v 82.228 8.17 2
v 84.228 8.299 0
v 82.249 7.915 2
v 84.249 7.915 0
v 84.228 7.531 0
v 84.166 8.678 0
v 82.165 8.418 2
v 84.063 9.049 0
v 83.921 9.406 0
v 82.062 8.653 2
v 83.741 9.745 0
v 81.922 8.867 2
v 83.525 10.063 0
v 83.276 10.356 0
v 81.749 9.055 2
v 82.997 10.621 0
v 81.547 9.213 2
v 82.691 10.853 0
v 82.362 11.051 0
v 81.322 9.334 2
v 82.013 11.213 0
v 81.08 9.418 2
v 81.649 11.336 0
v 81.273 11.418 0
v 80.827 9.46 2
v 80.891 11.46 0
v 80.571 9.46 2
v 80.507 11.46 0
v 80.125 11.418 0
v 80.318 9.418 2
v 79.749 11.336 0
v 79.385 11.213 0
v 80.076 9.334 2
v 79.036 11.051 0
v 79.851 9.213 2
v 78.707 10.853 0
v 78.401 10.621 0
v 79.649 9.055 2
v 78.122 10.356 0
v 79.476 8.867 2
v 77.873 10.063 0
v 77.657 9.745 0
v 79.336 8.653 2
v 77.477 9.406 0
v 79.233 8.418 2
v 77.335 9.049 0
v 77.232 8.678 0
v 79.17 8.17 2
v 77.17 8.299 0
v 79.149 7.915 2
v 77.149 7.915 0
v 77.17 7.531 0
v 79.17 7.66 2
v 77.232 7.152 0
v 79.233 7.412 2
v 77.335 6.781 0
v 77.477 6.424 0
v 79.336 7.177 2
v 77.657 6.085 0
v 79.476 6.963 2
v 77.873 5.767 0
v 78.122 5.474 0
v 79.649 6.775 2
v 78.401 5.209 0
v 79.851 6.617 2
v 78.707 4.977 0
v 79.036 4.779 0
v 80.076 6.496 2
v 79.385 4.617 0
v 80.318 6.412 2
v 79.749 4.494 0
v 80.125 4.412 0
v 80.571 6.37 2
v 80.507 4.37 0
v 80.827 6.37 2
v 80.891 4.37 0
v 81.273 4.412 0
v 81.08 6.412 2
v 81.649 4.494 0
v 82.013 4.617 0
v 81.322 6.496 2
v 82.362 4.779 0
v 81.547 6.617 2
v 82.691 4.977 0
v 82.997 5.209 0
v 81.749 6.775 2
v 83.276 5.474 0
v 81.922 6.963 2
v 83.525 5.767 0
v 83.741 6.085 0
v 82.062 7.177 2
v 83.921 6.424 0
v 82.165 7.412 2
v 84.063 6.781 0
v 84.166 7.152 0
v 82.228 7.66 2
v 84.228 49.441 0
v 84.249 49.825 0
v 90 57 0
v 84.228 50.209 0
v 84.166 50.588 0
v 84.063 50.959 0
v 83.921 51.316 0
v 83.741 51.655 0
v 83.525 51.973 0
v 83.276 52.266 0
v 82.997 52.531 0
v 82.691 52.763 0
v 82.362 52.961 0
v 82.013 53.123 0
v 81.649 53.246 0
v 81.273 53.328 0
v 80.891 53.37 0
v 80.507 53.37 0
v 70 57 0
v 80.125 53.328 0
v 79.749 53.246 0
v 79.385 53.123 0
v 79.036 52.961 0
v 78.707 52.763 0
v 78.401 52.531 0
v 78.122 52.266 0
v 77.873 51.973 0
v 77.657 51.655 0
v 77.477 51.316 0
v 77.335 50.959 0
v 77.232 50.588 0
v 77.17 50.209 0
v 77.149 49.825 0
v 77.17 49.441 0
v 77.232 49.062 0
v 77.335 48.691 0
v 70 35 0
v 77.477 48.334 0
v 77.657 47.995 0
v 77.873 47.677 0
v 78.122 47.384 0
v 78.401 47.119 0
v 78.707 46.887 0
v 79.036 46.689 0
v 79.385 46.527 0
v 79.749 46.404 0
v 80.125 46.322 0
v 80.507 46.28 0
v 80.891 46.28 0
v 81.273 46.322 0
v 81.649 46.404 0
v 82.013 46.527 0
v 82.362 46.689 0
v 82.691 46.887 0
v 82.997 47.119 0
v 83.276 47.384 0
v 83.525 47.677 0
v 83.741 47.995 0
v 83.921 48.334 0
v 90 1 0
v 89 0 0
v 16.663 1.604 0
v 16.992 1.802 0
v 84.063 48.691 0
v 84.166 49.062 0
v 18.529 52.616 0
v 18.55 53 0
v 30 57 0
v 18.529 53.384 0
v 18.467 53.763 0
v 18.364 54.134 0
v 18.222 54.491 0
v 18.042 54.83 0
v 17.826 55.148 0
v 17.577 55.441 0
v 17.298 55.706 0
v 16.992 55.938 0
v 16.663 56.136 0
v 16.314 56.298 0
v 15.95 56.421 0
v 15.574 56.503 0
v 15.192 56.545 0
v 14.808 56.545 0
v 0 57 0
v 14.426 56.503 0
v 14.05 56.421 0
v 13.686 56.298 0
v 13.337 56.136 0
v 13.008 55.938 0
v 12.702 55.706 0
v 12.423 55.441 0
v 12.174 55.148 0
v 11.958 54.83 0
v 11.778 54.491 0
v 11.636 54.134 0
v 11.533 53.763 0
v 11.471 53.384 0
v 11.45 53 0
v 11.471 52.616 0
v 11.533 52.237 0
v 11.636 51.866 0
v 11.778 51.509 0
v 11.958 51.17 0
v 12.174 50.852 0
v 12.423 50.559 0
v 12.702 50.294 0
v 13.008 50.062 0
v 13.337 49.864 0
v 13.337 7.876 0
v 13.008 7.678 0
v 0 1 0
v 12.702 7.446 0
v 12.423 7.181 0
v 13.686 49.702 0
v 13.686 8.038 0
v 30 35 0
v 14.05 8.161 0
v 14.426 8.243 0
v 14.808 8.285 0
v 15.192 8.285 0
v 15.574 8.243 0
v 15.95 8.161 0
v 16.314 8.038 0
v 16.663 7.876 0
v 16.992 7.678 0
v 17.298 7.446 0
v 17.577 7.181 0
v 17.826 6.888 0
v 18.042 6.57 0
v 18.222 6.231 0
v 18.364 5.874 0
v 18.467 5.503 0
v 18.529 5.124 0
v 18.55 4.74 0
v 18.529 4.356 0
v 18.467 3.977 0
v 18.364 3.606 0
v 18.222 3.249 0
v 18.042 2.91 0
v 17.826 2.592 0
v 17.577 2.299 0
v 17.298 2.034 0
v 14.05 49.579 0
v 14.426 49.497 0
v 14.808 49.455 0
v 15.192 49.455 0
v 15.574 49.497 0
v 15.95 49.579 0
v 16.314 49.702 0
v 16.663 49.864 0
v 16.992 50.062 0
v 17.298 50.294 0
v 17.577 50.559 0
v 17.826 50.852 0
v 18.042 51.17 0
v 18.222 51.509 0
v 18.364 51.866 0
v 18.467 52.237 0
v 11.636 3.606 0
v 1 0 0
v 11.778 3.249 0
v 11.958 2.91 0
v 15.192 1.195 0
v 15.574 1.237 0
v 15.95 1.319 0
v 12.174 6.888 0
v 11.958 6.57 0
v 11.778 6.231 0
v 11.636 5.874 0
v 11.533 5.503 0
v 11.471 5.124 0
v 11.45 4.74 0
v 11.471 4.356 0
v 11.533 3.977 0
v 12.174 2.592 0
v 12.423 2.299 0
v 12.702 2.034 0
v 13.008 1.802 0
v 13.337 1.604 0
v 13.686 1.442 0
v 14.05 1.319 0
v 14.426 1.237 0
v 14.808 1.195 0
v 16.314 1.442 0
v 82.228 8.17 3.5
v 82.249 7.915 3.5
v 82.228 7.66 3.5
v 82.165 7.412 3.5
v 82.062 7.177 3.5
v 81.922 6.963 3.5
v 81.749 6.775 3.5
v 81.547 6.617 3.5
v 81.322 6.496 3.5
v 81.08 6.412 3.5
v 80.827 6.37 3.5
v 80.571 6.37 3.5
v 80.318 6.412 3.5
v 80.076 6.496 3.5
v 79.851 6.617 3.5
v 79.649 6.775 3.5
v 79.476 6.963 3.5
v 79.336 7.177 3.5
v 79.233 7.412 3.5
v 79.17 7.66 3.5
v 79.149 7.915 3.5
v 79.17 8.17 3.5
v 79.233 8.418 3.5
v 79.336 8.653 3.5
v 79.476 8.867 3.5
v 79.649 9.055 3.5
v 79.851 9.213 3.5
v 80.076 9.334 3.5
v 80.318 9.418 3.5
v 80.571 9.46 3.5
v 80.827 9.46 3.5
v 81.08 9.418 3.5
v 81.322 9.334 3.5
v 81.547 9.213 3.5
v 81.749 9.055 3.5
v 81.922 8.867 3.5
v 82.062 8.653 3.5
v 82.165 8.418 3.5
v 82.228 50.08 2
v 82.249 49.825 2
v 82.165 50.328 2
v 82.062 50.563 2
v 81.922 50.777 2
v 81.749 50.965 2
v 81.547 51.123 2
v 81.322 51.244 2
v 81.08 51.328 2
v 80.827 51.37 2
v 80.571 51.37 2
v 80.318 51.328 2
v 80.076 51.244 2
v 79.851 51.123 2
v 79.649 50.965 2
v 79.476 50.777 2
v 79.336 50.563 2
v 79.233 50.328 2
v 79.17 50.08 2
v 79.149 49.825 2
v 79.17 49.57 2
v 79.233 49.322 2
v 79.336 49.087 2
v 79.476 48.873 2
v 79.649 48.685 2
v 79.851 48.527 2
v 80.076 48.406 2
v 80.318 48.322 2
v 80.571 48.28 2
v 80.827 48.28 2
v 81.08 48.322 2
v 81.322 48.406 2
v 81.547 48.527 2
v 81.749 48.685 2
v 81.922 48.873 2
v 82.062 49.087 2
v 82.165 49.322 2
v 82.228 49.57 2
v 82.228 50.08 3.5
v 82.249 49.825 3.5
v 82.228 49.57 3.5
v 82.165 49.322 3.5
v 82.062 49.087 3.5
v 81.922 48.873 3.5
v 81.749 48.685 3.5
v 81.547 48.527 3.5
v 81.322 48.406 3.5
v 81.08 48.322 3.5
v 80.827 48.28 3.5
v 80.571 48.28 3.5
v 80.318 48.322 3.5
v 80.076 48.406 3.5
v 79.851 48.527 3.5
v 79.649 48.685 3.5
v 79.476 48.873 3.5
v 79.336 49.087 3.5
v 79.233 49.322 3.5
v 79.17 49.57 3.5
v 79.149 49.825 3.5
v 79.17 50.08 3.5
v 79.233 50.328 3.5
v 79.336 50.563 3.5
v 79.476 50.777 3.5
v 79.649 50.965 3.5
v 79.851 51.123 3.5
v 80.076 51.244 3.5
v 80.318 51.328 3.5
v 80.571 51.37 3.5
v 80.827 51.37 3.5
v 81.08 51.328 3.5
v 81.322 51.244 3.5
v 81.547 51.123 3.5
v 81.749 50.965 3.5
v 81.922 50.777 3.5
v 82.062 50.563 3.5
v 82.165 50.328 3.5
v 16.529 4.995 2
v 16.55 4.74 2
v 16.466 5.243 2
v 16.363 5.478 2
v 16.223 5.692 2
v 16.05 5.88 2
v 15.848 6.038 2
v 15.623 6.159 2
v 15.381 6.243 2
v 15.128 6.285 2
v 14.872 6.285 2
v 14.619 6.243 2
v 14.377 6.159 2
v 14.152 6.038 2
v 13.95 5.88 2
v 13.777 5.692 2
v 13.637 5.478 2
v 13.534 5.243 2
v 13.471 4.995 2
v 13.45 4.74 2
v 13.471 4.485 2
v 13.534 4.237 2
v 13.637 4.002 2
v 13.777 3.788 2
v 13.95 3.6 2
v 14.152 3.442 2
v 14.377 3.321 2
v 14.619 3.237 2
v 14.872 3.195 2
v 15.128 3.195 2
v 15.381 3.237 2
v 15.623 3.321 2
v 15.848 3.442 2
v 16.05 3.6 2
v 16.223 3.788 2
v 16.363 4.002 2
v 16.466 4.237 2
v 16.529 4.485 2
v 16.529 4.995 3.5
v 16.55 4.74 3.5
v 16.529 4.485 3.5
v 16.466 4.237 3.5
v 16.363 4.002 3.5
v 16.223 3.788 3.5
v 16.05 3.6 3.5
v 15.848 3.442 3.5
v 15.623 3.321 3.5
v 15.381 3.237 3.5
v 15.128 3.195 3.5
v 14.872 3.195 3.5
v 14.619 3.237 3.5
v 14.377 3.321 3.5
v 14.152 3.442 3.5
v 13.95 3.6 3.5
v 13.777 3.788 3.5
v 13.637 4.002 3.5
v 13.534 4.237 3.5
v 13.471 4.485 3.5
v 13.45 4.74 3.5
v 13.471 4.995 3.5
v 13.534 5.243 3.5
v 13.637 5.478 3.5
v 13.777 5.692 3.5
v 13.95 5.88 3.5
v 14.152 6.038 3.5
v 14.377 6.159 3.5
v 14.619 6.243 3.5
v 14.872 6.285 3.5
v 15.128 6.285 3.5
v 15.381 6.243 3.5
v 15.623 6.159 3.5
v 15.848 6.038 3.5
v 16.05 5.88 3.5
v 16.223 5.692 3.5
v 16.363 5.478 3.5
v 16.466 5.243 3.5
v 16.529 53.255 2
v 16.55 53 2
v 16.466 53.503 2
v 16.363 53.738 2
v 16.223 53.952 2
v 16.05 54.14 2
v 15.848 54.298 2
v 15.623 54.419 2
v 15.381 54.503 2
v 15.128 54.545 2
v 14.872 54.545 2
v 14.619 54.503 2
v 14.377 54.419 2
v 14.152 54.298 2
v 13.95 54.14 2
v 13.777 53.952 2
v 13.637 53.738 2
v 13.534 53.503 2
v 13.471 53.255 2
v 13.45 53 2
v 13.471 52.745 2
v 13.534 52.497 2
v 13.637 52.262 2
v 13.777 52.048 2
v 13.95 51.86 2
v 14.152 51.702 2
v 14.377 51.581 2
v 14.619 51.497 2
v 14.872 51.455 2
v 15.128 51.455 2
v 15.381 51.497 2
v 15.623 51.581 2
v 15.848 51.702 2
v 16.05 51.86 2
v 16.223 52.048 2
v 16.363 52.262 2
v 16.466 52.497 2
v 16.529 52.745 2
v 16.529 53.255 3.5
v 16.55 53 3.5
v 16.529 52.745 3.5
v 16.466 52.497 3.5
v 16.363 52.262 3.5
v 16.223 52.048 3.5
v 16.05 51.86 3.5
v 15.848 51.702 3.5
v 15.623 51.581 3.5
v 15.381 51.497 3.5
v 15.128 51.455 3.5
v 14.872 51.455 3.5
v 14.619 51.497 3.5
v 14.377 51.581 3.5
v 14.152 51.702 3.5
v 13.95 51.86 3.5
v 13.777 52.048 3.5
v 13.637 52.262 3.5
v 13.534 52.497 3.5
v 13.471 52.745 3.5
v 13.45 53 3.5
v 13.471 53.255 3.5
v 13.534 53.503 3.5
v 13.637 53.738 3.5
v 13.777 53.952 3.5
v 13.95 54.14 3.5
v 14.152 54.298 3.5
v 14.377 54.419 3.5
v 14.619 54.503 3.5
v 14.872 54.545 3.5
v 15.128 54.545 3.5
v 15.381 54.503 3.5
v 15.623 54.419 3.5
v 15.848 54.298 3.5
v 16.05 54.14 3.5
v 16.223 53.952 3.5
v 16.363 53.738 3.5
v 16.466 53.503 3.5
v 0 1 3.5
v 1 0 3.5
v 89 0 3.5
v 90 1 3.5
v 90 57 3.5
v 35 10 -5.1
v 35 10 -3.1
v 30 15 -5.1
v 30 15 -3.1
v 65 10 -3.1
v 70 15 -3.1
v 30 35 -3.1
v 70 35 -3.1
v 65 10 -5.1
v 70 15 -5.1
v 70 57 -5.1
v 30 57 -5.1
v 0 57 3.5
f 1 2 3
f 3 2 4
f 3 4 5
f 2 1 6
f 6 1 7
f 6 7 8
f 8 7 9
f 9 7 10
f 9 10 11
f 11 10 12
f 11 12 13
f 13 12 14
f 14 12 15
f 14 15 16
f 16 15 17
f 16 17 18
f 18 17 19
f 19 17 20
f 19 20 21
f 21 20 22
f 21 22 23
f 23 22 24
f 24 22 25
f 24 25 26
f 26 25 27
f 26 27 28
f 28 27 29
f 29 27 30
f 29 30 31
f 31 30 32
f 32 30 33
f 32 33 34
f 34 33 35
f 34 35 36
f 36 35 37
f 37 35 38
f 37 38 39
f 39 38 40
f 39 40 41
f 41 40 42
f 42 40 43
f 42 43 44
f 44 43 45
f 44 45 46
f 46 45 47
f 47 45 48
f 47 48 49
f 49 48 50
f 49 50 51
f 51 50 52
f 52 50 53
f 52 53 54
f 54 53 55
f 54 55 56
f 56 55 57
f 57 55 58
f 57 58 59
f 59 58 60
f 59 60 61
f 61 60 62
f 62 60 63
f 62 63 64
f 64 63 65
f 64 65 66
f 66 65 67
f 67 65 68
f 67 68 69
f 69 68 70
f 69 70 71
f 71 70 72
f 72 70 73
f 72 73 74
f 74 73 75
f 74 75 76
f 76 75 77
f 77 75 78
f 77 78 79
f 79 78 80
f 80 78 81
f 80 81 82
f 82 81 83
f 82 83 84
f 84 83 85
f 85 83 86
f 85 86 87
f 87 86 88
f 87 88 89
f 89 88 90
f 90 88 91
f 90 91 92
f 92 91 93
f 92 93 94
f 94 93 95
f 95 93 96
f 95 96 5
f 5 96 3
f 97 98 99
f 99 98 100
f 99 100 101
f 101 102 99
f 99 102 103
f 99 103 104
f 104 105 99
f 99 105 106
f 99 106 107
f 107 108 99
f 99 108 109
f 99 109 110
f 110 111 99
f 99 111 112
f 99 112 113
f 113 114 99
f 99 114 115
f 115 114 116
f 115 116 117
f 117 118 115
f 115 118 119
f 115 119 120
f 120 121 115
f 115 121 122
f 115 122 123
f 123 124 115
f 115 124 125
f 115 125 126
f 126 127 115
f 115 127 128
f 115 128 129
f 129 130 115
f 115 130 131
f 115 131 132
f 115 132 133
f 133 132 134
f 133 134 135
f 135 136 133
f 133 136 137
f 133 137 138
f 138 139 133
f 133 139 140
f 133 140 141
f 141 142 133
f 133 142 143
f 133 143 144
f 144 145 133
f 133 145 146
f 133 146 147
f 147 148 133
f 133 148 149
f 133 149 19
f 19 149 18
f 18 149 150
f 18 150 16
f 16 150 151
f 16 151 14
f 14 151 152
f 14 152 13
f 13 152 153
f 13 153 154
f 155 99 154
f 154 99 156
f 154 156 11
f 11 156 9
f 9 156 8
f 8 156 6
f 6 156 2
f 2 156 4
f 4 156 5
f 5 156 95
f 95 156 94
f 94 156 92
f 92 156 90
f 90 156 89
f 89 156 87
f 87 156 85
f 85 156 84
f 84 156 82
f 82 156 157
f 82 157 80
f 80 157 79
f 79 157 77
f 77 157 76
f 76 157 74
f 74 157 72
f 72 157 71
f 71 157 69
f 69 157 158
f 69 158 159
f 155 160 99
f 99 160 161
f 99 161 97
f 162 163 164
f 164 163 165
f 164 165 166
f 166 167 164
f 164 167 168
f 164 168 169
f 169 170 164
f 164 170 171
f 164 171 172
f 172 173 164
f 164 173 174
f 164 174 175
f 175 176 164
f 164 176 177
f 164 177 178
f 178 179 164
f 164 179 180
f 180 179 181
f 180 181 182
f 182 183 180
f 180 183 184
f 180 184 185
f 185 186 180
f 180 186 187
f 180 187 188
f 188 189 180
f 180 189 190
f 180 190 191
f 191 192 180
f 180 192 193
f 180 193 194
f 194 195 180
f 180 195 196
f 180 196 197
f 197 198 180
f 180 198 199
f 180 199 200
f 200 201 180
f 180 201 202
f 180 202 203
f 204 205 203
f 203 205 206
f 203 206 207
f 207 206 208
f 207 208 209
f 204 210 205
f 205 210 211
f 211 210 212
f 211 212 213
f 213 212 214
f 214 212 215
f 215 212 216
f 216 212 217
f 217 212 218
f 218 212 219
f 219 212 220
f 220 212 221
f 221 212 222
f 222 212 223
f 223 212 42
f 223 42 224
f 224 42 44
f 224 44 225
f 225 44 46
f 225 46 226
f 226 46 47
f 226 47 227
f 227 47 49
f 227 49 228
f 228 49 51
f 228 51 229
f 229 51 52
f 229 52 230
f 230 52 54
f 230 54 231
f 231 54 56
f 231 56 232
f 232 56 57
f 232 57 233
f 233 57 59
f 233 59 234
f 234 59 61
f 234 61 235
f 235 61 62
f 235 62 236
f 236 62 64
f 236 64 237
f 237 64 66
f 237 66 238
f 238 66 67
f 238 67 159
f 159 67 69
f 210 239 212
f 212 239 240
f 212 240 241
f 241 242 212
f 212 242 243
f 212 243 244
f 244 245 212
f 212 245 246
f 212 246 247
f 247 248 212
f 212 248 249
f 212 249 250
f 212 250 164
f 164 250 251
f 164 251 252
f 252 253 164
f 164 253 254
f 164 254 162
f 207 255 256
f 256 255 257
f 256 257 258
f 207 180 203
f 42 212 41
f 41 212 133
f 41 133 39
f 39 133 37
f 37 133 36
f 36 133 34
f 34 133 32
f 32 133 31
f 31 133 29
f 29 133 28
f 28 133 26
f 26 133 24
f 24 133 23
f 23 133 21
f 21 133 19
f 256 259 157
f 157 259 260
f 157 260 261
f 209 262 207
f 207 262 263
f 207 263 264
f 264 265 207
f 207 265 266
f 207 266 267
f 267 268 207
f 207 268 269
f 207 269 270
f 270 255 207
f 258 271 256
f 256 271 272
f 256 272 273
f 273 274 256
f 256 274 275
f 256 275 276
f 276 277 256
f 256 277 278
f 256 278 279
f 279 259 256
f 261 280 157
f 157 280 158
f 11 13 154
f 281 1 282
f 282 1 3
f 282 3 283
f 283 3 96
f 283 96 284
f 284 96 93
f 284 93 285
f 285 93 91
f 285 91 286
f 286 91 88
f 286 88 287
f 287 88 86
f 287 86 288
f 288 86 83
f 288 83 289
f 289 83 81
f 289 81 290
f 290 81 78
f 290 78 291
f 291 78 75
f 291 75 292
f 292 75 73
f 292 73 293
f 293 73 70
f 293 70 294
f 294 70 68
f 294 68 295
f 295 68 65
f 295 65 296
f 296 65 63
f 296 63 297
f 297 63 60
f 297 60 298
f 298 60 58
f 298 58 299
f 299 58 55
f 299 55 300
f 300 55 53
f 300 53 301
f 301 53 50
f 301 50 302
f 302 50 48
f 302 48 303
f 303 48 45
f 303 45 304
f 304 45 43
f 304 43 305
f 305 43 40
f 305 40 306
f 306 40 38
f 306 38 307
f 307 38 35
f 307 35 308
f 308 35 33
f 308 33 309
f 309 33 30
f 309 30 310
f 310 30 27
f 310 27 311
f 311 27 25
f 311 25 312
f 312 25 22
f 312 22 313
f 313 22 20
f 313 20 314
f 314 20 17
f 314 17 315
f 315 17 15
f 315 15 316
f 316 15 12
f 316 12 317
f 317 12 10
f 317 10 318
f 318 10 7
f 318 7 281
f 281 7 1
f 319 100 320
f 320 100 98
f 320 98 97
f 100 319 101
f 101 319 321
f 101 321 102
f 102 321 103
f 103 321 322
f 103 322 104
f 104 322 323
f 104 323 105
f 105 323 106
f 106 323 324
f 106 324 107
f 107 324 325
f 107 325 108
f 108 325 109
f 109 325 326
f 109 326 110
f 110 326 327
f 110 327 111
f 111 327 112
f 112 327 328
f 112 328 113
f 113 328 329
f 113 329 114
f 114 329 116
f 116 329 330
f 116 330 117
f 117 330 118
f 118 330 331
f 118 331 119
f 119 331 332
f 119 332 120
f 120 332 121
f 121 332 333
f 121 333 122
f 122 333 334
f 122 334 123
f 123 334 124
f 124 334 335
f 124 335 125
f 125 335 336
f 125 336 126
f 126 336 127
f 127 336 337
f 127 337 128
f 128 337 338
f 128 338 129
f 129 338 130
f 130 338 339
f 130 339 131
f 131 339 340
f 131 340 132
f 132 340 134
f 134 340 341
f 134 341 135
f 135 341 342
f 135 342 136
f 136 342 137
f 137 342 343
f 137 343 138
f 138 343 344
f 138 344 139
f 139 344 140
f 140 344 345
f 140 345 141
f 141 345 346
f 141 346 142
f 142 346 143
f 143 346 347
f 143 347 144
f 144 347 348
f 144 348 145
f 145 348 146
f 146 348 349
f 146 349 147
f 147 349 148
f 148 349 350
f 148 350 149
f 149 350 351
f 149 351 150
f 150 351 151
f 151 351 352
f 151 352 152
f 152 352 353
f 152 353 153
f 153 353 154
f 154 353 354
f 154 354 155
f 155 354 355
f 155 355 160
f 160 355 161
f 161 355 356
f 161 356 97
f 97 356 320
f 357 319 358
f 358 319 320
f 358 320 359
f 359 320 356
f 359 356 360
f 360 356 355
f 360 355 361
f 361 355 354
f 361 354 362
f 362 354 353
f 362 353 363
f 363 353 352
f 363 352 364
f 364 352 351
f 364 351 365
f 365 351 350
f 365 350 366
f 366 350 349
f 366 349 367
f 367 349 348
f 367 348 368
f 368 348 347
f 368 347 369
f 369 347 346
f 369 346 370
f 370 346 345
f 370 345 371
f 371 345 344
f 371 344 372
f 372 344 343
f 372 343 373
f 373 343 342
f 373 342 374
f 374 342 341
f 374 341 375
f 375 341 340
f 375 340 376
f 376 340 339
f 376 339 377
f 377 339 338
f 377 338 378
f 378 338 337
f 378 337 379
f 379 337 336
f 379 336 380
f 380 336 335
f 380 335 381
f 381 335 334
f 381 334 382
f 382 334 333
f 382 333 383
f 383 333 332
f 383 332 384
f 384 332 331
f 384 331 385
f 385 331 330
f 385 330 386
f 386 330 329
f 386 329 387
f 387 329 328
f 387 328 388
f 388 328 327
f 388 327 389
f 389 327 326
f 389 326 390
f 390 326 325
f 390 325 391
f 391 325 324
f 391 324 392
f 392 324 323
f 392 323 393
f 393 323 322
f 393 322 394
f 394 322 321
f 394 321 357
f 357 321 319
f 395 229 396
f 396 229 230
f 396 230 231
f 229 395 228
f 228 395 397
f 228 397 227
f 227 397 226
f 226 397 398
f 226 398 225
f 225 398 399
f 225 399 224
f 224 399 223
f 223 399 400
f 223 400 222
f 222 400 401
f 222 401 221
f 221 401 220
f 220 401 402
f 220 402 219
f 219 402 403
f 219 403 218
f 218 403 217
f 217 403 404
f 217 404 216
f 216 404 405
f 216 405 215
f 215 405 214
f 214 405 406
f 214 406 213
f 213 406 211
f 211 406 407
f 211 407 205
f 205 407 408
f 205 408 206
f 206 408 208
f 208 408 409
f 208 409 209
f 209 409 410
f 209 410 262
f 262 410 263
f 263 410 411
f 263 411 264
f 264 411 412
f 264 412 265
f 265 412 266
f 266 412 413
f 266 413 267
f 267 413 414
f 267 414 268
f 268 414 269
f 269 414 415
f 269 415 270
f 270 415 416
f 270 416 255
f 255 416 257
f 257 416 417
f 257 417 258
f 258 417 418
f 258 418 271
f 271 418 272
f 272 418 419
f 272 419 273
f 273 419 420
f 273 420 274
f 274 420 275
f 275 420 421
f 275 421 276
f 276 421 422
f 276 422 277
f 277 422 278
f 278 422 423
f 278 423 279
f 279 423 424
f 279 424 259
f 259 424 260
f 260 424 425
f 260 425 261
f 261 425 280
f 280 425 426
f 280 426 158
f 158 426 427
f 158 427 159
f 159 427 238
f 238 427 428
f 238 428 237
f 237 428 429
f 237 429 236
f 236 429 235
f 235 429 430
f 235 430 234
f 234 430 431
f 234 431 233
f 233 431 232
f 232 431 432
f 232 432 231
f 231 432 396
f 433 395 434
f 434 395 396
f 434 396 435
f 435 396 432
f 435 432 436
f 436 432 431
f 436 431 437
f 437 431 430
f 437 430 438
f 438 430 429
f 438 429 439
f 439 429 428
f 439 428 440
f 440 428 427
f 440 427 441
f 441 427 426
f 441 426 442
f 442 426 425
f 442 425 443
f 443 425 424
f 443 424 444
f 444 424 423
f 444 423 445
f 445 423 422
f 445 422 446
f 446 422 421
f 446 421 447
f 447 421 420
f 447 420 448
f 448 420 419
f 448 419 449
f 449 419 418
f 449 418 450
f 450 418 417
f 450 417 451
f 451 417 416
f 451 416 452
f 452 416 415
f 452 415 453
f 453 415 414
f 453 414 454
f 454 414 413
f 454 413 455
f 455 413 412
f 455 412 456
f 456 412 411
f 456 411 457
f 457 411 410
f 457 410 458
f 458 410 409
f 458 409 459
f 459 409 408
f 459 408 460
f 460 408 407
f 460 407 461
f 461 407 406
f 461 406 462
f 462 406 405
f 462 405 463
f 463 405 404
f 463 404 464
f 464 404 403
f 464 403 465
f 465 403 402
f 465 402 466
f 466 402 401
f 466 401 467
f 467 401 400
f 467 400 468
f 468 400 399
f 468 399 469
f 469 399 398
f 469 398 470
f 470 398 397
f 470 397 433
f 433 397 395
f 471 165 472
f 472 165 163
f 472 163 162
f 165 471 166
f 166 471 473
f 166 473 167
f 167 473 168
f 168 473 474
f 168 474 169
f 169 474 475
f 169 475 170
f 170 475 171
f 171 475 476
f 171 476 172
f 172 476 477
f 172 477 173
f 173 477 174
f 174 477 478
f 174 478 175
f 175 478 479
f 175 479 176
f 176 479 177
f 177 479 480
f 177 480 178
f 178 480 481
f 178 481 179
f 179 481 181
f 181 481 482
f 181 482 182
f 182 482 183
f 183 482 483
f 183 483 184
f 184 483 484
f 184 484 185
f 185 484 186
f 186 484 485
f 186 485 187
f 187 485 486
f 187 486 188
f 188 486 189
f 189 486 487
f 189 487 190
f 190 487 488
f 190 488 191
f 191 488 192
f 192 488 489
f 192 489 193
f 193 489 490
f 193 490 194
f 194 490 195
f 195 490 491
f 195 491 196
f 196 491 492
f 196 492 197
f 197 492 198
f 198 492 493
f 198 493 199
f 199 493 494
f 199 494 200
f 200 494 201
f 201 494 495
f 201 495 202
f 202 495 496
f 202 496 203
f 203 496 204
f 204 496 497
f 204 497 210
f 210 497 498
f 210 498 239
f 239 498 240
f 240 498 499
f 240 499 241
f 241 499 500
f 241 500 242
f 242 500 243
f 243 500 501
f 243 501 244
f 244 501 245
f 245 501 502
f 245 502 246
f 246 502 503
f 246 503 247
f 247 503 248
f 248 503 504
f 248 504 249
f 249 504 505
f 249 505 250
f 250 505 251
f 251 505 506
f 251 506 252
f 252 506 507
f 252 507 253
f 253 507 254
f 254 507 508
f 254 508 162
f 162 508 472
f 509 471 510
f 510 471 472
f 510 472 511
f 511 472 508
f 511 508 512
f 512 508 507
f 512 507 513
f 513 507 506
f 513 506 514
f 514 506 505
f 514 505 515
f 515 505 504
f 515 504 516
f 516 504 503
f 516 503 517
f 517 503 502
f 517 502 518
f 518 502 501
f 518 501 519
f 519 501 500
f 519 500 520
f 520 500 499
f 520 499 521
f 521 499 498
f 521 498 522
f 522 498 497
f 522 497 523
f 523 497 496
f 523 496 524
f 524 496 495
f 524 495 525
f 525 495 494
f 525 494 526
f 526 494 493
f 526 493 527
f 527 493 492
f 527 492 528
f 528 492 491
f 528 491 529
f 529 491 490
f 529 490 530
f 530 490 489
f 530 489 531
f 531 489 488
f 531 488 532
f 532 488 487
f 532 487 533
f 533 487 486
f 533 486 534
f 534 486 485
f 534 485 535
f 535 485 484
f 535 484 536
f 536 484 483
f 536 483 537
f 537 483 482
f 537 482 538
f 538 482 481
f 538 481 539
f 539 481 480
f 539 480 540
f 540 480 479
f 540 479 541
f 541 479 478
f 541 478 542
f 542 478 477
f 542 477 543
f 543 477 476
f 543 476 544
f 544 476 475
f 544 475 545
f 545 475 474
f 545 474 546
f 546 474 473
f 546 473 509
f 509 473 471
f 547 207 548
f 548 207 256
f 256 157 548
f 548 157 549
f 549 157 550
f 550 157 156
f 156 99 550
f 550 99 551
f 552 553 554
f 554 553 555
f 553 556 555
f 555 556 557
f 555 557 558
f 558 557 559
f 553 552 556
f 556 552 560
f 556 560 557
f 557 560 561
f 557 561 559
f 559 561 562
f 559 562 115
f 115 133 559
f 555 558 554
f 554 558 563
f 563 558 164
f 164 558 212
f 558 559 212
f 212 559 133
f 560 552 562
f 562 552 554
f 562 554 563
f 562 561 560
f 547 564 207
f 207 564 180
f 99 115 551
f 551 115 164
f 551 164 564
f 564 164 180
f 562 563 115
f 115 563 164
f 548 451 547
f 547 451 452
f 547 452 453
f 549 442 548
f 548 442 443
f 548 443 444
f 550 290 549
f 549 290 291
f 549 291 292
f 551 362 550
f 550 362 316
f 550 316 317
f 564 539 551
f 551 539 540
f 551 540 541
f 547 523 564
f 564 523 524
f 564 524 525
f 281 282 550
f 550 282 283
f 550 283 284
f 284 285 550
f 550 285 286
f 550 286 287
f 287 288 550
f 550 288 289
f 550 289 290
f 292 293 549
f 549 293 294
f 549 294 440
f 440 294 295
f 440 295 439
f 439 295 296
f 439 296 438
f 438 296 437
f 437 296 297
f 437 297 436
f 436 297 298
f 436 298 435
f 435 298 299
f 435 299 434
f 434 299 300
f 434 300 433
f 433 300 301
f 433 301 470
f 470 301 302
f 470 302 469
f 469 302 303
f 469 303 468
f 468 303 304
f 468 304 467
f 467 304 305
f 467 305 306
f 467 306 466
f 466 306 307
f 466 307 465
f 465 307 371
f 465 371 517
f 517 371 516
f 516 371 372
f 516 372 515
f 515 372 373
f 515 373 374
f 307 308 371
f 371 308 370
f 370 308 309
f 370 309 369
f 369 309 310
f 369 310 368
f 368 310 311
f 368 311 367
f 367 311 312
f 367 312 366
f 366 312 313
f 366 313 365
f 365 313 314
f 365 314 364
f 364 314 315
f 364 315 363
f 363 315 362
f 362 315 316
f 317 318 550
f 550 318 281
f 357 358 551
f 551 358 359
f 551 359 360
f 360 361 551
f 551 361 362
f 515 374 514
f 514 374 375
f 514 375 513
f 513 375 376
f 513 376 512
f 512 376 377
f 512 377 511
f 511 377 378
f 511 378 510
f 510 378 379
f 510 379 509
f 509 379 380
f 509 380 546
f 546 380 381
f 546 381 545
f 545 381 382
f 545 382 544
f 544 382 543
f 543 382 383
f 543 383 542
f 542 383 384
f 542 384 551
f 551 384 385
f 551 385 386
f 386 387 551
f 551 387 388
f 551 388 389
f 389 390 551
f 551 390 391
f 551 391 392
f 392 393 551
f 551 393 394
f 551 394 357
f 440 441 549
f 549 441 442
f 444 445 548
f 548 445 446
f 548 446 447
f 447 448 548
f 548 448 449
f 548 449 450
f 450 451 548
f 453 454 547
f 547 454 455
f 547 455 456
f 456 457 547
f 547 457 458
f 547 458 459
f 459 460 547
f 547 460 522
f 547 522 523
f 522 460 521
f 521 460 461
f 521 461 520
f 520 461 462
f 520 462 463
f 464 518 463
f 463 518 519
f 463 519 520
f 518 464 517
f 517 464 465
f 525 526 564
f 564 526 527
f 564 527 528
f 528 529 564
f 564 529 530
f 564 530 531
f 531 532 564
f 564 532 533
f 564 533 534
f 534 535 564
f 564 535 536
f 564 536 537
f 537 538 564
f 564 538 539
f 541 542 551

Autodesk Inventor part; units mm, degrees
ref_plane "YZ Plane" through (0, 0, 0) normal (1, 0, 0) x (0, 1, 0)
ref_plane "XZ Plane" through (0, 0, 0) normal (0, 1, 0) x (-1, 0, 0)
ref_plane "XY Plane" through (0, 0, 0) normal (0, 0, 1) x (1, 0, 0)
sketch "Sketch1" plane through (0, 0, 0) normal (0, 0, 1) x (1, 0, 0)
  line L0 (0, 0) -> (90, 0)
  line L1 (90, 0) -> (90, 57)
  line L2 (90, 57) -> (0, 57)
  line L3 (0, 57) -> (0, 0)
  circle A0 centre (15, 53) radius 1.55
  circle A1 centre (15, 4.74) radius 1.55
  circle A2 centre (80.699, 49.825) radius 1.55
  circle A3 centre (80.699, 7.915) radius 1.55
  dimension "d0" = 57
  dimension "d1" = 90
  dimension "d2" = 3.1
  dimension "d3" = 3.1
  dimension "d4" = 3.1
  dimension "d5" = 3.1
  dimension "d6" = 4
  dimension "d7" = 15
  dimension "d8" = 48.26
  dimension "d9" = 15
  dimension "d10" = 80.699
  dimension "d11" = 7.175
  dimension "d12" = 41.91
  dimension "d13" = 80.699
extrude "Extrusion1" add sketch "Sketch1" along normal blind 3.5
sketch "Sketch2" plane through (0, 0, 0) normal (0, 0, -1) x (-1, 0, 0)
  line L0 (-70, 35) -> (-30, 35)
  line L1 (-30, 35) -> (-30, 57)
  line L2 (-30, 57) -> (-70, 57)
  line L3 (-70, 57) -> (-70, 35)
  line L4 (0, 0) -> (-90, 0) projected
  line L5 (-90, 57) -> (0, 57) projected
  line L6 (-90, 0) -> (-90, 57) projected
  dimension "d16" = 35
  dimension "d17" = 40
  dimension "d18" = 20
extrude "Extrusion2" add sketch "Sketch2" along normal blind 5.1
sketch "Sketch3" plane through (30, 35, 0) normal (0, -1, 0) x (1, 0, 0)
  line L0 (0, -5.1) -> (40, -5.1)
  line L1 (40, -5.1) -> (40, -3.1)
  line L2 (40, -3.1) -> (0, -3.1)
  line L3 (0, -3.1) -> (0, -5.1)
  line L4 (40, -5.1) -> (0, -5.1) projected
  line L5 (0, 0) -> (0, -5.1) projected
  line L6 (40, 0) -> (40, -5.1) projected
  line L7 (-30, 0) -> (60, 0) projected
  dimension "d21" = 3.1
extrude "Extrusion3" add sketch "Sketch3" along normal blind 25 contours L3 L2 L1 L0
chamfer "Chamfer1" distance 5 angle 45 2 edges at (70, 10, -4.1) (30, 10, -4.1)
chamfer "Chamfer2" distance 1 angle 45 2 edges at (90, 0, 1.75) (0, 0, 1.75)
chamfer "Chamfer3" distance 2 angle 45 4 edges at (13.45, 53, 0) (13.45, 4.74, 0) (79.149, 49.825, 0) (79.149, 7.915, 0)
properties part number "BeagleBoneMountingBracket"
